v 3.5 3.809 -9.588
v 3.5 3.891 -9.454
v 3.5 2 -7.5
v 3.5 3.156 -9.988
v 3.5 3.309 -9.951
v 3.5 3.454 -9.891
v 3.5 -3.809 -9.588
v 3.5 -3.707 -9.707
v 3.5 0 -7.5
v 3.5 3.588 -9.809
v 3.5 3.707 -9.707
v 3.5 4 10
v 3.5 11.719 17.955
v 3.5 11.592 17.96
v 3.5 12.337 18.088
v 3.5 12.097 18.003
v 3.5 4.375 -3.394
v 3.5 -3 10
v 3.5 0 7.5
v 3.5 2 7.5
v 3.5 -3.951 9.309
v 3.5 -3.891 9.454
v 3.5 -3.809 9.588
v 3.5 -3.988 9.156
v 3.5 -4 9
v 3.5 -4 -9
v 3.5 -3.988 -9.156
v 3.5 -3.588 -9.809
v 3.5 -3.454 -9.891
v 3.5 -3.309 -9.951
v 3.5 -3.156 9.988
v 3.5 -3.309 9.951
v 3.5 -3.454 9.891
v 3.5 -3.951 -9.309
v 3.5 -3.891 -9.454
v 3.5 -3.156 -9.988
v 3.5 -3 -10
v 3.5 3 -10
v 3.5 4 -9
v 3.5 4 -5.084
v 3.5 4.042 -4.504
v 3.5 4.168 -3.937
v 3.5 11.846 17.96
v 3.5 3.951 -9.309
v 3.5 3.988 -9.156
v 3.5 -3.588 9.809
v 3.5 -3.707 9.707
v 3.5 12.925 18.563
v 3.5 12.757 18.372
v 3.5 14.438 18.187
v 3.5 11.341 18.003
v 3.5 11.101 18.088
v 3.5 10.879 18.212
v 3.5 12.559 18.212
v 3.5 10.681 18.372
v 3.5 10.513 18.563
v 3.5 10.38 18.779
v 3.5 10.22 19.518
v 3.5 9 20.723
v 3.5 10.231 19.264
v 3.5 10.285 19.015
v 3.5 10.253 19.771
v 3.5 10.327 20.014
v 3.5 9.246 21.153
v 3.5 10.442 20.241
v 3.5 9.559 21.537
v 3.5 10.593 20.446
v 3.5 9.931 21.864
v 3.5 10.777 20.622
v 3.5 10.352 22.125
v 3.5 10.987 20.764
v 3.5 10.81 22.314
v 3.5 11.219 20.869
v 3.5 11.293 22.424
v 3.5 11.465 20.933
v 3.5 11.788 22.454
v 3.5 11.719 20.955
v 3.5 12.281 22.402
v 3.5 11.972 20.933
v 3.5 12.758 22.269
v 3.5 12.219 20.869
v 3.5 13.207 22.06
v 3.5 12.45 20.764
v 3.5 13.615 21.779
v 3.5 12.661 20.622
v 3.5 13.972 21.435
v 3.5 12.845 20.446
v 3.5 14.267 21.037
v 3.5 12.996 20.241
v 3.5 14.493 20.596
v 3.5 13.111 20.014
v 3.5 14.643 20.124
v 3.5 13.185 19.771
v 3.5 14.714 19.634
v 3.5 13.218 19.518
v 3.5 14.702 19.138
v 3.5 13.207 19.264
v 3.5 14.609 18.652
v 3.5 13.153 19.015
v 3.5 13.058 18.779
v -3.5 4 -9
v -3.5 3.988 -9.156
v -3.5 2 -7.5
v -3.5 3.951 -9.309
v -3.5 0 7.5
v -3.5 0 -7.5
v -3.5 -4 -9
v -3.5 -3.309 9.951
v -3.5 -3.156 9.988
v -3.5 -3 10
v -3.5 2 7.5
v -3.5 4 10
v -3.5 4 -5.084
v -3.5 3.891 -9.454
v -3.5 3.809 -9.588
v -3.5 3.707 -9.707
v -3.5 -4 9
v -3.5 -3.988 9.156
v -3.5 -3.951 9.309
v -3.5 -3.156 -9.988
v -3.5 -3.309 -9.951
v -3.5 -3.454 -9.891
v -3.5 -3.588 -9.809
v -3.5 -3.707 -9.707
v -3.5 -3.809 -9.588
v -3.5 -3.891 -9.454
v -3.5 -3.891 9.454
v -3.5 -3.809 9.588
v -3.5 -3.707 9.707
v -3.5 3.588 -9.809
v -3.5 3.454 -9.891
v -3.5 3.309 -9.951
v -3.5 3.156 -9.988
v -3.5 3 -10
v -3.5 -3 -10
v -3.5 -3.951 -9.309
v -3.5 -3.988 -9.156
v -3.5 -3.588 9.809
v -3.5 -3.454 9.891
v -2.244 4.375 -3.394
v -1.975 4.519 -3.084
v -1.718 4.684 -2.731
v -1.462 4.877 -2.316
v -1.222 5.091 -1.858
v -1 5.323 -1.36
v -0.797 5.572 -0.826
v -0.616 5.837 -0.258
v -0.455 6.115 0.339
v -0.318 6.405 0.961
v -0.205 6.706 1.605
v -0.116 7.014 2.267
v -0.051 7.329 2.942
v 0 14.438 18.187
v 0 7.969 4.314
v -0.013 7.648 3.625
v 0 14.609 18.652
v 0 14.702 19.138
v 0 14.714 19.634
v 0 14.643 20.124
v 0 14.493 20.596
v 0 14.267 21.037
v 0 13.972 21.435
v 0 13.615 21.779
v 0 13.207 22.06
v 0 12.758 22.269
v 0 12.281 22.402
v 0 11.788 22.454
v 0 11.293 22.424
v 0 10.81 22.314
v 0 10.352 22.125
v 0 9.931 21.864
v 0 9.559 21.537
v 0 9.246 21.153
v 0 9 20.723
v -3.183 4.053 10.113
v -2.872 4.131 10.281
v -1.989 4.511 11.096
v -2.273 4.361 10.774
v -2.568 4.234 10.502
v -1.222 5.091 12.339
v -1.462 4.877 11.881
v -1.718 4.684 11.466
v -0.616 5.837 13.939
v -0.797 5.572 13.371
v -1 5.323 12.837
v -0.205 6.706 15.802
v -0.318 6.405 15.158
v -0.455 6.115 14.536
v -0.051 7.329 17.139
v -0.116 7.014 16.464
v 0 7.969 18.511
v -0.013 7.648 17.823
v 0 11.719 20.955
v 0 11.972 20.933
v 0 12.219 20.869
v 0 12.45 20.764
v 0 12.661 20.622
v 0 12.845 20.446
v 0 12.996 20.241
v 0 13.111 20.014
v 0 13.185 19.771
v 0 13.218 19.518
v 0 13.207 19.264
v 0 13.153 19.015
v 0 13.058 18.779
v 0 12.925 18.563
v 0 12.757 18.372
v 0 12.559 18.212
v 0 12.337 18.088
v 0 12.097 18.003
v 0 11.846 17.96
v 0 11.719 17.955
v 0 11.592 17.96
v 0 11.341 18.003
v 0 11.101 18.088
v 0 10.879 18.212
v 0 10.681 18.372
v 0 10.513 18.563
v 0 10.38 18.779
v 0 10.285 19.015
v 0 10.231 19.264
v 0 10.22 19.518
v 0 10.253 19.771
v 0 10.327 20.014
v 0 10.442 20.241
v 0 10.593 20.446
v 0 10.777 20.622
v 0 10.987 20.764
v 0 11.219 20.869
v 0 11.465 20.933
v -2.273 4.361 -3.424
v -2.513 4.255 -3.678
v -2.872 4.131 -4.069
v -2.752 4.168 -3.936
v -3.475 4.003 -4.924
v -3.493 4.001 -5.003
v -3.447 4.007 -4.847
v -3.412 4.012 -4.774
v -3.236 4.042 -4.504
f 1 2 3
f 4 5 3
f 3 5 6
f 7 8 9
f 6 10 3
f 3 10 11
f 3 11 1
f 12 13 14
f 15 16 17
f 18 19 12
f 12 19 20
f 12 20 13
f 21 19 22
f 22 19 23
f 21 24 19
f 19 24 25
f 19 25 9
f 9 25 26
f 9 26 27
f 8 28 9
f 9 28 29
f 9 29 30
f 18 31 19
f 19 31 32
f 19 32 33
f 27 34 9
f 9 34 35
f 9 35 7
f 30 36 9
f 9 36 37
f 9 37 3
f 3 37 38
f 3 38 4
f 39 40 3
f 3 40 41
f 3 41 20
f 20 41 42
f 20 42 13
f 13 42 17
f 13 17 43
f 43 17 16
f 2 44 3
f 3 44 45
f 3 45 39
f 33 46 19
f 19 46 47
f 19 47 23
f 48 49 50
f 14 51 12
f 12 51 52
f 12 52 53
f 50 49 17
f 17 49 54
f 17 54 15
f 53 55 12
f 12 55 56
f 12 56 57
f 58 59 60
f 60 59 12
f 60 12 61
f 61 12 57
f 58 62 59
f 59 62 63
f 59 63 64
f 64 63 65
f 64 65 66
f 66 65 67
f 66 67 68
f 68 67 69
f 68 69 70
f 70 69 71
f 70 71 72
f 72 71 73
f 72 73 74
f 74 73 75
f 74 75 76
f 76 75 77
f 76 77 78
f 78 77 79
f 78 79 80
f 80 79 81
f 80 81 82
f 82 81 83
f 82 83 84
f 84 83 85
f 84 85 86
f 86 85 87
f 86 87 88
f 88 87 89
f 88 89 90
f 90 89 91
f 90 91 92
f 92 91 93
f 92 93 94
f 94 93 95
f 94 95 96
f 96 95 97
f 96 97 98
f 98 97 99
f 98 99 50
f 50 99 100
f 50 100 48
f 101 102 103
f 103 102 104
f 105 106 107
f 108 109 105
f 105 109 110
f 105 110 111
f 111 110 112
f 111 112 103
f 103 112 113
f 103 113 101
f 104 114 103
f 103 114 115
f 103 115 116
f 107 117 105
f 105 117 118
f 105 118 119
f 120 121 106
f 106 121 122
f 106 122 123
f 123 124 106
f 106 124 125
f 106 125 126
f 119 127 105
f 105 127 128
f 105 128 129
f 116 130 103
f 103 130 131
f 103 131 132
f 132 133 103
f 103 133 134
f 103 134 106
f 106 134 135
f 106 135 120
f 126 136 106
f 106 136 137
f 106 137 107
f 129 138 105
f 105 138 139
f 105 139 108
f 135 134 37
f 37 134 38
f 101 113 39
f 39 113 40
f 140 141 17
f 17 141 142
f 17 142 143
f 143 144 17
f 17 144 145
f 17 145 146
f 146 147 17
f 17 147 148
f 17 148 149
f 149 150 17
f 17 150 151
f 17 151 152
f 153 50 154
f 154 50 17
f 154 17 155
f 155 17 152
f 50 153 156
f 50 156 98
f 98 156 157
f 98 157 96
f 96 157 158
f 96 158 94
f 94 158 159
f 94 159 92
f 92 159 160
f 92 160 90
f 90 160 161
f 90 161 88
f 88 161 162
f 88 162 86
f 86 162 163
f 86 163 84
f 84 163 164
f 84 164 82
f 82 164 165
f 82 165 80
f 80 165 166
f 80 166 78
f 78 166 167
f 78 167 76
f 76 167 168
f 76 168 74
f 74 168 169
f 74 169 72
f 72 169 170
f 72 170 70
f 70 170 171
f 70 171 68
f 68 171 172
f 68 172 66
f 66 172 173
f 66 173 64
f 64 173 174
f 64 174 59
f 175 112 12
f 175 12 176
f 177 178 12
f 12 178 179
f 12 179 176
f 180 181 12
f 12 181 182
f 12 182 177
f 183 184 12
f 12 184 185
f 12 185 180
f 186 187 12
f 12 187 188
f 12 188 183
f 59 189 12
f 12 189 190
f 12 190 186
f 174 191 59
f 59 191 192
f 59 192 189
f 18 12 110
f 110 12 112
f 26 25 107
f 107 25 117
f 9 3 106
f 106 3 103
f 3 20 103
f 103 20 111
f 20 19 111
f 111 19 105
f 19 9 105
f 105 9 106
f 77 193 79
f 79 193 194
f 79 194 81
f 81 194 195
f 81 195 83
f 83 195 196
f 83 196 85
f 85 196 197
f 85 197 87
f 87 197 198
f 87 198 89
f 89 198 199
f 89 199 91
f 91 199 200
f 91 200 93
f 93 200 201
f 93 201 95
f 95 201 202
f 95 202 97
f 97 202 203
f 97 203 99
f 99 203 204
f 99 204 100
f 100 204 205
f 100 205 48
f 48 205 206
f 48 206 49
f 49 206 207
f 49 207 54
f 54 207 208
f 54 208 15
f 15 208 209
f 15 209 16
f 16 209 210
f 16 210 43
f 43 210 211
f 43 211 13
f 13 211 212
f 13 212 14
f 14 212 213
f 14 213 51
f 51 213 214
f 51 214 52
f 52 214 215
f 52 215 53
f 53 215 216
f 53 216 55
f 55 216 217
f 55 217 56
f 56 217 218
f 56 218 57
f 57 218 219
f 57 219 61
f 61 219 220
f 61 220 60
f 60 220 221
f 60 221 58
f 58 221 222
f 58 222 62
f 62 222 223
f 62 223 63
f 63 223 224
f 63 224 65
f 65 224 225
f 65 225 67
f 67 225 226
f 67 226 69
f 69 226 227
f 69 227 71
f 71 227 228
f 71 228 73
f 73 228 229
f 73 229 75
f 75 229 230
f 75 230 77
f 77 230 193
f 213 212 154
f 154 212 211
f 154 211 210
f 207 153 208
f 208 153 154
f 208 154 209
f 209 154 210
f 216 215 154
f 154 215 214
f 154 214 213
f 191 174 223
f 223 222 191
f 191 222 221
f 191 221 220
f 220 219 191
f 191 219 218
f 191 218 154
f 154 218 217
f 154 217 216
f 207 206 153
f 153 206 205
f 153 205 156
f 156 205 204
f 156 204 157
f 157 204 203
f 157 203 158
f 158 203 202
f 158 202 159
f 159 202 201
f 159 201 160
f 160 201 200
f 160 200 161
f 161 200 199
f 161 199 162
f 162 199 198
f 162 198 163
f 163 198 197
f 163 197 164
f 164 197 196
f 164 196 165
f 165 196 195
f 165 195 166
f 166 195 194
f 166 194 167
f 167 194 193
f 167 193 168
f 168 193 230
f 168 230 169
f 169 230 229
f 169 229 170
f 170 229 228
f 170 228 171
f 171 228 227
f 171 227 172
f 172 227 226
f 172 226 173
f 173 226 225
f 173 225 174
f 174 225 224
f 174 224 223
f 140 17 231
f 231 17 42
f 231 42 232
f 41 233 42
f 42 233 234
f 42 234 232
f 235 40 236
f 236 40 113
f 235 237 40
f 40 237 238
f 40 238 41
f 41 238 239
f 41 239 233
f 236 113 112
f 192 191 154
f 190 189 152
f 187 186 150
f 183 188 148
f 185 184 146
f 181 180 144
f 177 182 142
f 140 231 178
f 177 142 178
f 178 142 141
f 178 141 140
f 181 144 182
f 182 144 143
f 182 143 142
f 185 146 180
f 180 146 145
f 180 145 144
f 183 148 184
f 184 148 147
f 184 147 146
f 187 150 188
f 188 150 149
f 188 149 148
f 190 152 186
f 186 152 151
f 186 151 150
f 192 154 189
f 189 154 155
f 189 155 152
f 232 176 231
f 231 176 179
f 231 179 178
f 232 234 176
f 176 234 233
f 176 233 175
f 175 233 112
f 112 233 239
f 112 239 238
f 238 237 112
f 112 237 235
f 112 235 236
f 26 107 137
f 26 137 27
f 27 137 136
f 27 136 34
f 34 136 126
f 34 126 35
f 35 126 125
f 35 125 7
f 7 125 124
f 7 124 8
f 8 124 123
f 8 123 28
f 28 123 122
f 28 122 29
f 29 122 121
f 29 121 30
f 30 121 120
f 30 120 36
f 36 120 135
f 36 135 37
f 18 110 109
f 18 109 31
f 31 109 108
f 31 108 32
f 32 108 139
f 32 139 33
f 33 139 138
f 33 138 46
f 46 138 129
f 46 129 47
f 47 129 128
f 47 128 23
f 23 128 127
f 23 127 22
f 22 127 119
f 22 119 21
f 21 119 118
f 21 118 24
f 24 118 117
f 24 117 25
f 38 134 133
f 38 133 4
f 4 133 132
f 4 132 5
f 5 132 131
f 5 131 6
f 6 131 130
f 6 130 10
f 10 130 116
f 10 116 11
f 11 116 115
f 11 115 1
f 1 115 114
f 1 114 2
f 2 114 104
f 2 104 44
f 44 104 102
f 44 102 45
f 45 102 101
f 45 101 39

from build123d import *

# Parameters (mm, degrees)
CROQUIS1_R              = 1.5
CROQUIS1_W              = 15
CROQUIS1_H              = 2
SALIENTE_EXTRUIR1_DEPTH = 3.5
CORTAR_EXTRUIR1_START   = -3.5
CORTAR_EXTRUIR1_DEPTH   = 3.5
REDONDEO1_R             = 4
REDONDEO3_R             = 1


with BuildPart() as part:
    # Croquis1 → Saliente-Extruir1 (new, symmetric)
    with BuildSketch(Plane(origin=(0, 0, 0), x_dir=(0, 0, -1), z_dir=(1, 0, 0))):
        with BuildLine():
            Line((4.197209499, 4), (-18.186825032, 14.437846722))
            ThreePointArc((-18.186825032, 14.437846722), (-22.173603178, 12.986778146), (-20.722534603, 9))
            Line((-20.722534603, 9), (-10, 4))
            Line((-10, 4), (-10, -4))
            Line((-10, -4), (10, -4))
            Line((10, -4), (10, 4))
            Line((10, 4), (4.197209499, 4))
        make_face()
        with Locations((-19.454679817, 11.718923361)):
            Circle(CROQUIS1_R, mode=Mode.SUBTRACT)
        with Locations((0, 1)):
            Rectangle(CROQUIS1_W, CROQUIS1_H, mode=Mode.SUBTRACT)
    extrude(amount=SALIENTE_EXTRUIR1_DEPTH, both=True)

    # Croquis2 → Cortar-Extruir1 (cut)
    with BuildSketch(Plane.ZY.offset(3.5).offset(CORTAR_EXTRUIR1_START)):
        with BuildLine():
            Line((-4.197209499, 4), (10, 4))
            Line((10, 4), (20.722534603, 9))
            ThreePointArc((20.722534603, 9), (22.173603178, 12.986778146), (18.186825032, 14.437846722))
            Line((18.186825032, 14.437846722), (-4.197209499, 4))
        make_face()
    extrude(amount=CORTAR_EXTRUIR1_DEPTH, mode=Mode.SUBTRACT)

    # Redondeo1
    # the kernel refuses this fillet: 4 mm, written as the material it adds along each edge
    with BuildSketch(Plane(origin=(0, 4, -14.118776915), x_dir=(-1, 0, 0), z_dir=(0, 0, 1))) as redondeo1_piece_1_section:
        with BuildLine():
            CenterArc((4, -3.968626967), REDONDEO1_R, 97.180755781, 82.819244219)
            Line((0, -3.968626967), (0, 0))
            Line((0, 0), (3.5, 0))
        make_face()
    redondeo1_piece_1 = extrude(amount=24.118776915, mode=Mode.PRIVATE)
    redondeo1_piece_1 = split(redondeo1_piece_1, bisect_by=Plane(origin=(0, 0.199819207, -12.346723509), z_dir=(0, -0.9063077870366529, 0.42261826174069317)), keep=Keep.TOP, mode=Mode.PRIVATE)
    redondeo1_piece_1 = split(redondeo1_piece_1, bisect_by=Plane(origin=(0, -5.238027515, -9.811013939), z_dir=(0, 0.9063077870366527, -0.4226182617406936)), keep=Keep.TOP, mode=Mode.PRIVATE)
    add(redondeo1_piece_1)
    with BuildSketch(Plane(origin=(0, 4, -14.118776915), x_dir=(-1, 0, 0), z_dir=(0, 0, 1))) as redondeo1_piece_2_section:
        with BuildLine():
            CenterArc((4, -3.968626967), REDONDEO1_R, 97.180755781, 82.819244219)
            Line((0, -3.968626967), (0, 0))
            Line((0, 0), (3.5, 0))
        make_face()
    redondeo1_piece_2 = extrude(amount=34.040344332, mode=Mode.PRIVATE)
    redondeo1_piece_2 = split(redondeo1_piece_2, bisect_by=Plane(origin=(0, 4, 10), z_dir=(0, 0, 1)), keep=Keep.TOP, mode=Mode.PRIVATE)
    redondeo1_piece_2 = split(redondeo1_piece_2, bisect_by=Plane(origin=(0, -5.238027515, -9.811013939), z_dir=(0, 0.9063077870366527, -0.4226182617406936)), keep=Keep.TOP, mode=Mode.PRIVATE)
    add(redondeo1_piece_2)
    # the kernel refuses this fillet: 4 mm, written as the material it adds along each edge
    with BuildSketch(Plane(origin=(-3.5, 4, -4.197209499), x_dir=(0, 0, -1), z_dir=(1, 0, 0))) as redondeo1_2_piece_1_section:
        with BuildLine():
            CenterArc((REDONDEO1_R * 0.221694662643, REDONDEO1_R), REDONDEO1_R, 245, 25)
            Line((-REDONDEO1_R * 0.200923599098, REDONDEO1_R * 0.0936922129633), (0, 0))
            Line((0, 0), (REDONDEO1_R * 0.221694662643, 0))
        make_face()
    redondeo1_2_piece_1 = extrude(amount=7, mode=Mode.PRIVATE)
    redondeo1_2_piece_1 = redondeo1_2_piece_1 - Plane(origin=(-4, 7.968626967, -4.197209499), x_dir=(0.12499999999999983, -0.9921567416492215, 0), z_dir=(0, 0, -1)) * Cylinder(4, 18, mode=Mode.PRIVATE)
    add(redondeo1_2_piece_1)

    # Redondeo3
    redondeo3_edges = [part.edges().sort_by_distance(p)[0] for p in [
        (0, -4, -10),
        (0, -4, 10),
        (0, 4, -10),
    ]]
    fillet(redondeo3_edges, radius=REDONDEO3_R)


solid = part.part
